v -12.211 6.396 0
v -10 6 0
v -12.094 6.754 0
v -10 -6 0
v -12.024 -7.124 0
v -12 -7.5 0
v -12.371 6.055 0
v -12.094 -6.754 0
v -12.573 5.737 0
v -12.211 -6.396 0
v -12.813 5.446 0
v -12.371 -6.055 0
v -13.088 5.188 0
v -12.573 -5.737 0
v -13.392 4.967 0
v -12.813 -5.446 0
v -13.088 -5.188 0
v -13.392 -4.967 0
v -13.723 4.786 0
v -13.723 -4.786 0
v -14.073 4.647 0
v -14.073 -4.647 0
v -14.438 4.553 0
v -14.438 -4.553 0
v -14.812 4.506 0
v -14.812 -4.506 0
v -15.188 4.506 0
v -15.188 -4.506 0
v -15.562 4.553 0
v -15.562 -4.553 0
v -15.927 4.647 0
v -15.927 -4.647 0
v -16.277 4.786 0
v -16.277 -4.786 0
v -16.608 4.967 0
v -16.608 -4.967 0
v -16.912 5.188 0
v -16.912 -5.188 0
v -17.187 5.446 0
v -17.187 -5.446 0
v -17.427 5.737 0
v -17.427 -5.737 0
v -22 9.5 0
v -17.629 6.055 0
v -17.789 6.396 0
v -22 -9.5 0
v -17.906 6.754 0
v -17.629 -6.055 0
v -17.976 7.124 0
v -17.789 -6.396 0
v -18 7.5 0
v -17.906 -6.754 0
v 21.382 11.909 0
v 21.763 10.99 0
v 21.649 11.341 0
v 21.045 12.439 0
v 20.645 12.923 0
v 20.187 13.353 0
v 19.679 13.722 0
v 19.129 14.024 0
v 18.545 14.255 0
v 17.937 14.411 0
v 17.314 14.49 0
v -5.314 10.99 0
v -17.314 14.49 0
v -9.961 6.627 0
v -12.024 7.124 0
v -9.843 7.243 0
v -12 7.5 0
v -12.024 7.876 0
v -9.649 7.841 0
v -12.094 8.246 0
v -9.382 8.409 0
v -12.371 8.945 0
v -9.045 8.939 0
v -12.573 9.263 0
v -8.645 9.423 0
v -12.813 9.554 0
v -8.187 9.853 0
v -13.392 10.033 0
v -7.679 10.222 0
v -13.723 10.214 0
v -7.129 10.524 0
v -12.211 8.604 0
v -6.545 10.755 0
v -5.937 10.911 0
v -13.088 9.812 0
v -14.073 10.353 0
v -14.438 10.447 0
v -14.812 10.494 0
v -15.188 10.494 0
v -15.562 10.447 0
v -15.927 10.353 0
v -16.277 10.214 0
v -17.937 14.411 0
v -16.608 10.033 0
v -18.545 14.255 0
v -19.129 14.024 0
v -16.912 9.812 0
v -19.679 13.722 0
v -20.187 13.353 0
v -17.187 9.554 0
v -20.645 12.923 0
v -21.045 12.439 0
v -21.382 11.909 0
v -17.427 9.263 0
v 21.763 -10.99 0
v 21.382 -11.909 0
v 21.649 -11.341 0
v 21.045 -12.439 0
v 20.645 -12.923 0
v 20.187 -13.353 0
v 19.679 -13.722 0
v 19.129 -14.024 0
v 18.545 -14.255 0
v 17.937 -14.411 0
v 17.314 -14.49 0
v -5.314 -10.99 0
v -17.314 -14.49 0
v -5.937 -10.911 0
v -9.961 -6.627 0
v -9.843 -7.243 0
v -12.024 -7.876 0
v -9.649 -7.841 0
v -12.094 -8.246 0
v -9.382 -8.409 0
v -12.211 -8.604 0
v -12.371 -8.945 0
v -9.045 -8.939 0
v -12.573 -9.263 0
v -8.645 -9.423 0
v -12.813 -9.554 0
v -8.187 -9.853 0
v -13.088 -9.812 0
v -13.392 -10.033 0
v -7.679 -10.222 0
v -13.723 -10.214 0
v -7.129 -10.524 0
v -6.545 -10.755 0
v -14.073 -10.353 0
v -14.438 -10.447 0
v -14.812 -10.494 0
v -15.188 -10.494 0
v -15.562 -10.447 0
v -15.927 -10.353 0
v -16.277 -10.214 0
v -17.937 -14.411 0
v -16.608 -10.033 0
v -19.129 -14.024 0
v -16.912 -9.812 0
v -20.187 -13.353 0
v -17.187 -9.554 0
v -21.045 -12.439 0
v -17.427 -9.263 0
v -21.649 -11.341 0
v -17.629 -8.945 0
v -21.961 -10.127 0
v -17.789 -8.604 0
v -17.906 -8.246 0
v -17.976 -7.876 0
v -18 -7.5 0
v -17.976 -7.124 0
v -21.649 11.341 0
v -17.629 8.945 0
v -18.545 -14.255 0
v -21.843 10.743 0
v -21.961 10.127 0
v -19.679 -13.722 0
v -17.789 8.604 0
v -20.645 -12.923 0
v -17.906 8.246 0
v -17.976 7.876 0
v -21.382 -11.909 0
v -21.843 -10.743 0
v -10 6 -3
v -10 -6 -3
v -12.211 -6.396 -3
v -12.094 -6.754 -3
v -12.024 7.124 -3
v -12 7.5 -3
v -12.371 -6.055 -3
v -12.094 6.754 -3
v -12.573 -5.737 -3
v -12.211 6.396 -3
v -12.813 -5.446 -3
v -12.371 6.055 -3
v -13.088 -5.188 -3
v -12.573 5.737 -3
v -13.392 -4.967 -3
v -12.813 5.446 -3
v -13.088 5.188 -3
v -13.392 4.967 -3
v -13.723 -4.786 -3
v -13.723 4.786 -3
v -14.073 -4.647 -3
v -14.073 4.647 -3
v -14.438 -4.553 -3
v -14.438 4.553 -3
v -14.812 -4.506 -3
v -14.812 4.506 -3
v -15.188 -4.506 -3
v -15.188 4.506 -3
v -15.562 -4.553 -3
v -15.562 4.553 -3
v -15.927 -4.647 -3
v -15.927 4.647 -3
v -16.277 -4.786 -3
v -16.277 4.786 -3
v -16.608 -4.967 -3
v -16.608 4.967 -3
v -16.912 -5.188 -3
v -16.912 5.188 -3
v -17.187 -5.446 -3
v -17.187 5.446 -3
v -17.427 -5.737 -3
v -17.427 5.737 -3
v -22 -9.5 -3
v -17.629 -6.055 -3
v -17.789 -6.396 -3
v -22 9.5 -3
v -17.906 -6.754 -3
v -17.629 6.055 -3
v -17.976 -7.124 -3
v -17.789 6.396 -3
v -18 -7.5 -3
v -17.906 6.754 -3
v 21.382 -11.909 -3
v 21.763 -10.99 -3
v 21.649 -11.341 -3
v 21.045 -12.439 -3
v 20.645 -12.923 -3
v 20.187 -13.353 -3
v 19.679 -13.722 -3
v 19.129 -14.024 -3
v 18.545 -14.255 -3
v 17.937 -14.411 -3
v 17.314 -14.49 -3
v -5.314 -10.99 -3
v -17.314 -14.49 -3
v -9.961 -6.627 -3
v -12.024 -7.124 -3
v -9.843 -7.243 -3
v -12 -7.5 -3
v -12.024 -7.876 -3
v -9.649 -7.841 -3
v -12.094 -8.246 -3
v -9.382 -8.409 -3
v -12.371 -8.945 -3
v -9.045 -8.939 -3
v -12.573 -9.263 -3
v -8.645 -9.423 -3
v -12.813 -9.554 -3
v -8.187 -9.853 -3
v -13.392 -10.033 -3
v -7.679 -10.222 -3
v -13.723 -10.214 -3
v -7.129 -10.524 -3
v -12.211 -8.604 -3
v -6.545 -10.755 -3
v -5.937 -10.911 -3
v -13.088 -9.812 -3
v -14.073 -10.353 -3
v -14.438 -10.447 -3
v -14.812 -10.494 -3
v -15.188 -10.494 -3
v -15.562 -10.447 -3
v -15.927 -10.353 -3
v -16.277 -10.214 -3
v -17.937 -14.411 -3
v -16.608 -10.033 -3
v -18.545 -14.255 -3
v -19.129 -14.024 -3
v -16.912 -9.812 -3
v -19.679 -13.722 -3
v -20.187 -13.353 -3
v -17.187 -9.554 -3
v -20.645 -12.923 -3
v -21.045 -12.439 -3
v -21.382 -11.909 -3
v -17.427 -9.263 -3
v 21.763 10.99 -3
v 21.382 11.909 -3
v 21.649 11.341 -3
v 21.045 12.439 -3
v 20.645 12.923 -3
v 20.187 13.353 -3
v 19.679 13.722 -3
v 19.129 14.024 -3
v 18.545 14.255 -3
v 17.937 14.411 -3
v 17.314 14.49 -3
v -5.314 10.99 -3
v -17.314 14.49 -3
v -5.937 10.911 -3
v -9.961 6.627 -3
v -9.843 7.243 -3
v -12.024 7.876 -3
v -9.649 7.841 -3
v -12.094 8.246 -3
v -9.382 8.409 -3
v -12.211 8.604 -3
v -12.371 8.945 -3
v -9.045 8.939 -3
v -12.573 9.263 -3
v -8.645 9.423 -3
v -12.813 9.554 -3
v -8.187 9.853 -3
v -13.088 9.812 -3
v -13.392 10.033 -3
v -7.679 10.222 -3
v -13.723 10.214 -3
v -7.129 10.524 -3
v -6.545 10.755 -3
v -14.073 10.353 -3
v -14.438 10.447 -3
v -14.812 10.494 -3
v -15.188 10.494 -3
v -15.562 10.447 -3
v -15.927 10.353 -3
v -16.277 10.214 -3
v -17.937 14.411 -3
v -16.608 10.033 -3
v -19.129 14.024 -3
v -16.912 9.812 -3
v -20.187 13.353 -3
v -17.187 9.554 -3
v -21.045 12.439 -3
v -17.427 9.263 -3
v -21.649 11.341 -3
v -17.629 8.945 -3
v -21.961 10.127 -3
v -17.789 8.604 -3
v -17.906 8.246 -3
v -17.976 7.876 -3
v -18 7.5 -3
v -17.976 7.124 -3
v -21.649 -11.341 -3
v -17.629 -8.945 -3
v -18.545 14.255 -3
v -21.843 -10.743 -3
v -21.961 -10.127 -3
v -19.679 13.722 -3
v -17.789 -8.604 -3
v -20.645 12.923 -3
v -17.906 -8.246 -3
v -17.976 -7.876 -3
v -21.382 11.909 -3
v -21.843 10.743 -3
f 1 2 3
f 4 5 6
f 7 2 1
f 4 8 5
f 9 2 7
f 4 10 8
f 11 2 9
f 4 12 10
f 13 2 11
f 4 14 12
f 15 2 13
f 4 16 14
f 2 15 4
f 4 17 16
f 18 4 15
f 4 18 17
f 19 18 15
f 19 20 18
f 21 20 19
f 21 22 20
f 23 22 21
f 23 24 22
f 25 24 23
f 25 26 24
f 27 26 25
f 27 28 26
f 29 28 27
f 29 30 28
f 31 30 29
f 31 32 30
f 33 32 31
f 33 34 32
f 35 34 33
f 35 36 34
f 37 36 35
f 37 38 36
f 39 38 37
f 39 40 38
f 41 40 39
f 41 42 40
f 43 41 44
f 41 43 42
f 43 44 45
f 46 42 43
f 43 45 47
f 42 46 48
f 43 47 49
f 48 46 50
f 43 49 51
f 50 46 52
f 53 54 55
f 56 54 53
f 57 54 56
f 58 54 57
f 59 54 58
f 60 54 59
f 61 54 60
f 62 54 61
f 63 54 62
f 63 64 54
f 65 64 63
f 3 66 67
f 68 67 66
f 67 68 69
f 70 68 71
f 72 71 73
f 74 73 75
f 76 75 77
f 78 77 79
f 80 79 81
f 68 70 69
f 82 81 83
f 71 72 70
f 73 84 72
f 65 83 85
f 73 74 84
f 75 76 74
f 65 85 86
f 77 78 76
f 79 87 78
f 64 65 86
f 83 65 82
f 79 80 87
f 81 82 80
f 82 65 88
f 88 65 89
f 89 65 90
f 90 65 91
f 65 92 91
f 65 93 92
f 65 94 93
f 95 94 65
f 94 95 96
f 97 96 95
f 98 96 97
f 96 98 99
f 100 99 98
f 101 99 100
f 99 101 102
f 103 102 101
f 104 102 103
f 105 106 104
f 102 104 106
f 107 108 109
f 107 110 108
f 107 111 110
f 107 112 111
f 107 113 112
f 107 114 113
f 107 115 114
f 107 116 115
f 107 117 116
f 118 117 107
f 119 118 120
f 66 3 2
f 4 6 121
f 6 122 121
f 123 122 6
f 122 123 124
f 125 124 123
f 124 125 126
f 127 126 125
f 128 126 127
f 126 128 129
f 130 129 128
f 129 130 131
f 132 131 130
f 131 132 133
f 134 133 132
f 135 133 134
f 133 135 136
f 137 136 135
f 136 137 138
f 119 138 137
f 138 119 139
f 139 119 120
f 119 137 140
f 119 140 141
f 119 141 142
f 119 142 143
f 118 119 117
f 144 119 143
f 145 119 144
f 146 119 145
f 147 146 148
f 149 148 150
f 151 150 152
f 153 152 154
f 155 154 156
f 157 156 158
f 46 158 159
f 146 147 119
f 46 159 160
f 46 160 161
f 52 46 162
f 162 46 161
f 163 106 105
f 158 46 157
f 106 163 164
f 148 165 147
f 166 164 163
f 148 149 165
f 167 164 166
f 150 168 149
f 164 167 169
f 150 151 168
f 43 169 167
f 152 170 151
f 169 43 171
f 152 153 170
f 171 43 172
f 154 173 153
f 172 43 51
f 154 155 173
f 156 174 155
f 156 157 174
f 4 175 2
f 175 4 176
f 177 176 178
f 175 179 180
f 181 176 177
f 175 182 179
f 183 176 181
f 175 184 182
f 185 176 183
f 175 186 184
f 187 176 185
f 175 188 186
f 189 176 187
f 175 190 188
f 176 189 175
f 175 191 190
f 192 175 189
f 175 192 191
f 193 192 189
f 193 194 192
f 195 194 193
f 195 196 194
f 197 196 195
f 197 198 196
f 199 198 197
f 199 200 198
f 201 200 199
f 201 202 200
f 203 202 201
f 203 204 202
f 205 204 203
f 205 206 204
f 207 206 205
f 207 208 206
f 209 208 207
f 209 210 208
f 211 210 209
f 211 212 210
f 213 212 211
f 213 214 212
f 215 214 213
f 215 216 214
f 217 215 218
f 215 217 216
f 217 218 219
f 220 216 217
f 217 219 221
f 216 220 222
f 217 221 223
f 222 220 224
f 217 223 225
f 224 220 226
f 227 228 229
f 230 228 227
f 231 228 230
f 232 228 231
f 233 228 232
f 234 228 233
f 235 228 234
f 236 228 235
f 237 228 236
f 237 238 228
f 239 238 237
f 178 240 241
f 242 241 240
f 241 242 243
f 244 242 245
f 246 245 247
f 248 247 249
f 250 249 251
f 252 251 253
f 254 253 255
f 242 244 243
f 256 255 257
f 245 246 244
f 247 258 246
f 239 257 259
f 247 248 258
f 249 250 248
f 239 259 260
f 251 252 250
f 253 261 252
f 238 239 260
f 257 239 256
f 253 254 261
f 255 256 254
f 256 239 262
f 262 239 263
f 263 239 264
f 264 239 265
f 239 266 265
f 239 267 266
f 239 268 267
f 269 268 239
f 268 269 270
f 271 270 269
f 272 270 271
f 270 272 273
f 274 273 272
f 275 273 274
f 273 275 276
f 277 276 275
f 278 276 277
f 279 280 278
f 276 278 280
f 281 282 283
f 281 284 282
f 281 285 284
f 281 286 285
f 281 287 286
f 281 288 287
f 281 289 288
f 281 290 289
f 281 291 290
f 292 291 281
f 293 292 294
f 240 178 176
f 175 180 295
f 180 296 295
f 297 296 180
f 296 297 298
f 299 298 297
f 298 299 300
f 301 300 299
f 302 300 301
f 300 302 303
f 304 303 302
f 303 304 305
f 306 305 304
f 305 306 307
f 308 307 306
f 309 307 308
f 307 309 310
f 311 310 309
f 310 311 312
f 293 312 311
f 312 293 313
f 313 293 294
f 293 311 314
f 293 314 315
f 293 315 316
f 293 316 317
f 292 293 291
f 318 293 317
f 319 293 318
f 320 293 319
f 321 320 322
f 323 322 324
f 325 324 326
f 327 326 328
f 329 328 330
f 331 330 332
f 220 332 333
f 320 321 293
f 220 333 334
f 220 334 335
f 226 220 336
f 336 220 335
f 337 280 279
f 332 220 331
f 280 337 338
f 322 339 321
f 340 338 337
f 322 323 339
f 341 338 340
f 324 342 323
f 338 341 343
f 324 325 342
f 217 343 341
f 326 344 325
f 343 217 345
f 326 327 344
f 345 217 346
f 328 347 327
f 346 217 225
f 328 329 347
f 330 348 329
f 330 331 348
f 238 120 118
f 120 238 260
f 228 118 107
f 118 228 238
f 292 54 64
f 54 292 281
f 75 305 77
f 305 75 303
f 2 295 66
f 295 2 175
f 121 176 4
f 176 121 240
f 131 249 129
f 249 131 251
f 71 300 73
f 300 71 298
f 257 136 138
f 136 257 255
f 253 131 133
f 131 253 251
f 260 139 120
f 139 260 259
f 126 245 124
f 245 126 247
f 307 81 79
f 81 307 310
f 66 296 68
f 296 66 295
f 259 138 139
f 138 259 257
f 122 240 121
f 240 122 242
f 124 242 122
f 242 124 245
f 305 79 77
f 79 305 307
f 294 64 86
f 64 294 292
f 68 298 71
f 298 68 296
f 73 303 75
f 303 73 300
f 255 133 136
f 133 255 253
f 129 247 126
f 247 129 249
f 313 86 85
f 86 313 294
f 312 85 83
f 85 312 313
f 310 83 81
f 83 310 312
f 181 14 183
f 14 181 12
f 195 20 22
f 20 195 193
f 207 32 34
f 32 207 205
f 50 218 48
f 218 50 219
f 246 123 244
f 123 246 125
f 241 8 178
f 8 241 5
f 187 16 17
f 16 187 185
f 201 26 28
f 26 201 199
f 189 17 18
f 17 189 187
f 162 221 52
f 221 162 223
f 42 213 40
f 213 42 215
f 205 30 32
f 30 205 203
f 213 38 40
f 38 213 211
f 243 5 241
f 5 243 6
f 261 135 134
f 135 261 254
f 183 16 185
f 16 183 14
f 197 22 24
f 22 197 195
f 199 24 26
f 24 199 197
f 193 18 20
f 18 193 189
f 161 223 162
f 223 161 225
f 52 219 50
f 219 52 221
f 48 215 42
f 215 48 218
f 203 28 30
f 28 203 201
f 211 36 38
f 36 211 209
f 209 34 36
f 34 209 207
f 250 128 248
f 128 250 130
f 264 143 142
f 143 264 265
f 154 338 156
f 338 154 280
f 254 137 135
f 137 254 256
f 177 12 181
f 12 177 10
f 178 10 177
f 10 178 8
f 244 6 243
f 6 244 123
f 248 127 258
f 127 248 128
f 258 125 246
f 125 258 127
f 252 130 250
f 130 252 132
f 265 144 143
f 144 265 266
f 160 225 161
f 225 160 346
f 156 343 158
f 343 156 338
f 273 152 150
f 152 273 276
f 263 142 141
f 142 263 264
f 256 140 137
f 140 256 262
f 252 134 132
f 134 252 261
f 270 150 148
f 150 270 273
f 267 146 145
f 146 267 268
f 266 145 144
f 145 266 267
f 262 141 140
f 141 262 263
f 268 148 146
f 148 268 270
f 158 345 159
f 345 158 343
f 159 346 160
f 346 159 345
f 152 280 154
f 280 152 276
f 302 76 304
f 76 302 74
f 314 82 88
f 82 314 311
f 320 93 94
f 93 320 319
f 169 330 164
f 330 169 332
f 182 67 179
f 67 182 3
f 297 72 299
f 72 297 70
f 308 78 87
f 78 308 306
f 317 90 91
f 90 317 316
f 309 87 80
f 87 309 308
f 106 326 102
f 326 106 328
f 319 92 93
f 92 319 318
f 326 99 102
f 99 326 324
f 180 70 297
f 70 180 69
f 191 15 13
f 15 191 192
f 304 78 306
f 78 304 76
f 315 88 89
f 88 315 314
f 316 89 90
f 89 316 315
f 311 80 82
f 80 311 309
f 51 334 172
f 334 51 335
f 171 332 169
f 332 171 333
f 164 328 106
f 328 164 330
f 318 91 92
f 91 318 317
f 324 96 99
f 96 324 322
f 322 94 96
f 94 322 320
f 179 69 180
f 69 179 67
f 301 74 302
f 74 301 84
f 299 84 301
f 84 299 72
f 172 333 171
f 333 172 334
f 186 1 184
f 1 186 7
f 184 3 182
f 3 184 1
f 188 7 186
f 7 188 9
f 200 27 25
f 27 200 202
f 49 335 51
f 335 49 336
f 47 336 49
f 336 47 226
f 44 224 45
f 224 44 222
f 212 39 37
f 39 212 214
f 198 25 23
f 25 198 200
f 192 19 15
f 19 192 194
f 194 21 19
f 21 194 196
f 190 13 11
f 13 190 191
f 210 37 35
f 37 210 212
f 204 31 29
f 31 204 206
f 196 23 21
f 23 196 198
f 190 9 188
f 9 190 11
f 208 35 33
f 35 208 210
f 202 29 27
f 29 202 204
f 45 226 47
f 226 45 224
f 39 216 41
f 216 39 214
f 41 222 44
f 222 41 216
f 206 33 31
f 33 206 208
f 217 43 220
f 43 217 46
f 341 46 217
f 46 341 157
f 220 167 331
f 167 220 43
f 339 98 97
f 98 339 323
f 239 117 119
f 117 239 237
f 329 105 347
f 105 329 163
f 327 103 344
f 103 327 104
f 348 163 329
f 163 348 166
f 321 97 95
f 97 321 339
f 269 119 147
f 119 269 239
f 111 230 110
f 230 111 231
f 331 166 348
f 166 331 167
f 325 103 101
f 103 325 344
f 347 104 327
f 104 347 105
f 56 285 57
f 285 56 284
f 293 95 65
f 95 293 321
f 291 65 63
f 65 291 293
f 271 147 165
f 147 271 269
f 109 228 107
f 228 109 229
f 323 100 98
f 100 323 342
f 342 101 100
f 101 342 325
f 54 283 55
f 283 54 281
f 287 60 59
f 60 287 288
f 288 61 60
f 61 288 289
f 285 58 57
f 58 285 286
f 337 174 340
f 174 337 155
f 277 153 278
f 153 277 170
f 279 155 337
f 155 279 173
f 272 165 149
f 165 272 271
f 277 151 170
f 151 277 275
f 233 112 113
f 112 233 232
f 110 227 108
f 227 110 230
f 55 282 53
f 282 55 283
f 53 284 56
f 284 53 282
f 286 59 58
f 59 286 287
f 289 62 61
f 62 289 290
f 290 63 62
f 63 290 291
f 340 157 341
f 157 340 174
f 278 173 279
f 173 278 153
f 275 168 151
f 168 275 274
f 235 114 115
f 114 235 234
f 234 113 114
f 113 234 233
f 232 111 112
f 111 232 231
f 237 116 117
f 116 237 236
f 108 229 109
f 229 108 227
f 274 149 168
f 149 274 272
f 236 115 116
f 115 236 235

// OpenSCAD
$fn = 50;


difference() {
	union() {
		translate(v = [0, 0, -3]) {
			hull() {
				translate(v = [-17.0000000000, 9.5000000000, 0]) {
					cylinder(h = 3, r = 5);
				}
				translate(v = [17.0000000000, 9.5000000000, 0]) {
					cylinder(h = 3, r = 5);
				}
				translate(v = [-17.0000000000, -9.5000000000, 0]) {
					cylinder(h = 3, r = 5);
				}
				translate(v = [17.0000000000, -9.5000000000, 0]) {
					cylinder(h = 3, r = 5);
				}
			}
		}
	}
	union() {
		translate(v = [0, 0, -3]) {
			rotate(a = [0, 0, 180]) {
				difference() {
					union() {
						translate(v = [-10, 0, 0]) {
							#hull() {
								translate(v = [-15.0000000000, 6.0000000000, 0]) {
									cylinder(h = 3, r = 5);
								}
								translate(v = [15.0000000000, 6.0000000000, 0]) {
									cylinder(h = 3, r = 5);
								}
								translate(v = [-15.0000000000, -6.0000000000, 0]) {
									cylinder(h = 3, r = 5);
								}
								translate(v = [15.0000000000, -6.0000000000, 0]) {
									cylinder(h = 3, r = 5);
								}
							}
						}
					}
					union();
				}
			}
		}
		translate(v = [-15.0000000000, -7.5000000000, -50.0000000000]) {
			cylinder(h = 100, r = 3.0000000000);
		}
		translate(v = [-15.0000000000, 7.5000000000, -50.0000000000]) {
			cylinder(h = 100, r = 3.0000000000);
		}
		translate(v = [-15.0000000000, 7.5000000000, -50.0000000000]) {
			cylinder(h = 100, r = 3.0000000000);
		}
		translate(v = [0.0000000000, 7.5000000000, -50.0000000000]) {
			cylinder(h = 100, r = 3.0000000000);
		}
		translate(v = [15.0000000000, 7.5000000000, -50.0000000000]) {
			cylinder(h = 100, r = 3.0000000000);
		}
		translate(v = [-15.0000000000, -7.5000000000, -50.0000000000]) {
			cylinder(h = 100, r = 3.0000000000);
		}
		translate(v = [0.0000000000, -7.5000000000, -50.0000000000]) {
			cylinder(h = 100, r = 3.0000000000);
		}
		translate(v = [15.0000000000, -7.5000000000, -50.0000000000]) {
			cylinder(h = 100, r = 3.0000000000);
		}
	}
}
